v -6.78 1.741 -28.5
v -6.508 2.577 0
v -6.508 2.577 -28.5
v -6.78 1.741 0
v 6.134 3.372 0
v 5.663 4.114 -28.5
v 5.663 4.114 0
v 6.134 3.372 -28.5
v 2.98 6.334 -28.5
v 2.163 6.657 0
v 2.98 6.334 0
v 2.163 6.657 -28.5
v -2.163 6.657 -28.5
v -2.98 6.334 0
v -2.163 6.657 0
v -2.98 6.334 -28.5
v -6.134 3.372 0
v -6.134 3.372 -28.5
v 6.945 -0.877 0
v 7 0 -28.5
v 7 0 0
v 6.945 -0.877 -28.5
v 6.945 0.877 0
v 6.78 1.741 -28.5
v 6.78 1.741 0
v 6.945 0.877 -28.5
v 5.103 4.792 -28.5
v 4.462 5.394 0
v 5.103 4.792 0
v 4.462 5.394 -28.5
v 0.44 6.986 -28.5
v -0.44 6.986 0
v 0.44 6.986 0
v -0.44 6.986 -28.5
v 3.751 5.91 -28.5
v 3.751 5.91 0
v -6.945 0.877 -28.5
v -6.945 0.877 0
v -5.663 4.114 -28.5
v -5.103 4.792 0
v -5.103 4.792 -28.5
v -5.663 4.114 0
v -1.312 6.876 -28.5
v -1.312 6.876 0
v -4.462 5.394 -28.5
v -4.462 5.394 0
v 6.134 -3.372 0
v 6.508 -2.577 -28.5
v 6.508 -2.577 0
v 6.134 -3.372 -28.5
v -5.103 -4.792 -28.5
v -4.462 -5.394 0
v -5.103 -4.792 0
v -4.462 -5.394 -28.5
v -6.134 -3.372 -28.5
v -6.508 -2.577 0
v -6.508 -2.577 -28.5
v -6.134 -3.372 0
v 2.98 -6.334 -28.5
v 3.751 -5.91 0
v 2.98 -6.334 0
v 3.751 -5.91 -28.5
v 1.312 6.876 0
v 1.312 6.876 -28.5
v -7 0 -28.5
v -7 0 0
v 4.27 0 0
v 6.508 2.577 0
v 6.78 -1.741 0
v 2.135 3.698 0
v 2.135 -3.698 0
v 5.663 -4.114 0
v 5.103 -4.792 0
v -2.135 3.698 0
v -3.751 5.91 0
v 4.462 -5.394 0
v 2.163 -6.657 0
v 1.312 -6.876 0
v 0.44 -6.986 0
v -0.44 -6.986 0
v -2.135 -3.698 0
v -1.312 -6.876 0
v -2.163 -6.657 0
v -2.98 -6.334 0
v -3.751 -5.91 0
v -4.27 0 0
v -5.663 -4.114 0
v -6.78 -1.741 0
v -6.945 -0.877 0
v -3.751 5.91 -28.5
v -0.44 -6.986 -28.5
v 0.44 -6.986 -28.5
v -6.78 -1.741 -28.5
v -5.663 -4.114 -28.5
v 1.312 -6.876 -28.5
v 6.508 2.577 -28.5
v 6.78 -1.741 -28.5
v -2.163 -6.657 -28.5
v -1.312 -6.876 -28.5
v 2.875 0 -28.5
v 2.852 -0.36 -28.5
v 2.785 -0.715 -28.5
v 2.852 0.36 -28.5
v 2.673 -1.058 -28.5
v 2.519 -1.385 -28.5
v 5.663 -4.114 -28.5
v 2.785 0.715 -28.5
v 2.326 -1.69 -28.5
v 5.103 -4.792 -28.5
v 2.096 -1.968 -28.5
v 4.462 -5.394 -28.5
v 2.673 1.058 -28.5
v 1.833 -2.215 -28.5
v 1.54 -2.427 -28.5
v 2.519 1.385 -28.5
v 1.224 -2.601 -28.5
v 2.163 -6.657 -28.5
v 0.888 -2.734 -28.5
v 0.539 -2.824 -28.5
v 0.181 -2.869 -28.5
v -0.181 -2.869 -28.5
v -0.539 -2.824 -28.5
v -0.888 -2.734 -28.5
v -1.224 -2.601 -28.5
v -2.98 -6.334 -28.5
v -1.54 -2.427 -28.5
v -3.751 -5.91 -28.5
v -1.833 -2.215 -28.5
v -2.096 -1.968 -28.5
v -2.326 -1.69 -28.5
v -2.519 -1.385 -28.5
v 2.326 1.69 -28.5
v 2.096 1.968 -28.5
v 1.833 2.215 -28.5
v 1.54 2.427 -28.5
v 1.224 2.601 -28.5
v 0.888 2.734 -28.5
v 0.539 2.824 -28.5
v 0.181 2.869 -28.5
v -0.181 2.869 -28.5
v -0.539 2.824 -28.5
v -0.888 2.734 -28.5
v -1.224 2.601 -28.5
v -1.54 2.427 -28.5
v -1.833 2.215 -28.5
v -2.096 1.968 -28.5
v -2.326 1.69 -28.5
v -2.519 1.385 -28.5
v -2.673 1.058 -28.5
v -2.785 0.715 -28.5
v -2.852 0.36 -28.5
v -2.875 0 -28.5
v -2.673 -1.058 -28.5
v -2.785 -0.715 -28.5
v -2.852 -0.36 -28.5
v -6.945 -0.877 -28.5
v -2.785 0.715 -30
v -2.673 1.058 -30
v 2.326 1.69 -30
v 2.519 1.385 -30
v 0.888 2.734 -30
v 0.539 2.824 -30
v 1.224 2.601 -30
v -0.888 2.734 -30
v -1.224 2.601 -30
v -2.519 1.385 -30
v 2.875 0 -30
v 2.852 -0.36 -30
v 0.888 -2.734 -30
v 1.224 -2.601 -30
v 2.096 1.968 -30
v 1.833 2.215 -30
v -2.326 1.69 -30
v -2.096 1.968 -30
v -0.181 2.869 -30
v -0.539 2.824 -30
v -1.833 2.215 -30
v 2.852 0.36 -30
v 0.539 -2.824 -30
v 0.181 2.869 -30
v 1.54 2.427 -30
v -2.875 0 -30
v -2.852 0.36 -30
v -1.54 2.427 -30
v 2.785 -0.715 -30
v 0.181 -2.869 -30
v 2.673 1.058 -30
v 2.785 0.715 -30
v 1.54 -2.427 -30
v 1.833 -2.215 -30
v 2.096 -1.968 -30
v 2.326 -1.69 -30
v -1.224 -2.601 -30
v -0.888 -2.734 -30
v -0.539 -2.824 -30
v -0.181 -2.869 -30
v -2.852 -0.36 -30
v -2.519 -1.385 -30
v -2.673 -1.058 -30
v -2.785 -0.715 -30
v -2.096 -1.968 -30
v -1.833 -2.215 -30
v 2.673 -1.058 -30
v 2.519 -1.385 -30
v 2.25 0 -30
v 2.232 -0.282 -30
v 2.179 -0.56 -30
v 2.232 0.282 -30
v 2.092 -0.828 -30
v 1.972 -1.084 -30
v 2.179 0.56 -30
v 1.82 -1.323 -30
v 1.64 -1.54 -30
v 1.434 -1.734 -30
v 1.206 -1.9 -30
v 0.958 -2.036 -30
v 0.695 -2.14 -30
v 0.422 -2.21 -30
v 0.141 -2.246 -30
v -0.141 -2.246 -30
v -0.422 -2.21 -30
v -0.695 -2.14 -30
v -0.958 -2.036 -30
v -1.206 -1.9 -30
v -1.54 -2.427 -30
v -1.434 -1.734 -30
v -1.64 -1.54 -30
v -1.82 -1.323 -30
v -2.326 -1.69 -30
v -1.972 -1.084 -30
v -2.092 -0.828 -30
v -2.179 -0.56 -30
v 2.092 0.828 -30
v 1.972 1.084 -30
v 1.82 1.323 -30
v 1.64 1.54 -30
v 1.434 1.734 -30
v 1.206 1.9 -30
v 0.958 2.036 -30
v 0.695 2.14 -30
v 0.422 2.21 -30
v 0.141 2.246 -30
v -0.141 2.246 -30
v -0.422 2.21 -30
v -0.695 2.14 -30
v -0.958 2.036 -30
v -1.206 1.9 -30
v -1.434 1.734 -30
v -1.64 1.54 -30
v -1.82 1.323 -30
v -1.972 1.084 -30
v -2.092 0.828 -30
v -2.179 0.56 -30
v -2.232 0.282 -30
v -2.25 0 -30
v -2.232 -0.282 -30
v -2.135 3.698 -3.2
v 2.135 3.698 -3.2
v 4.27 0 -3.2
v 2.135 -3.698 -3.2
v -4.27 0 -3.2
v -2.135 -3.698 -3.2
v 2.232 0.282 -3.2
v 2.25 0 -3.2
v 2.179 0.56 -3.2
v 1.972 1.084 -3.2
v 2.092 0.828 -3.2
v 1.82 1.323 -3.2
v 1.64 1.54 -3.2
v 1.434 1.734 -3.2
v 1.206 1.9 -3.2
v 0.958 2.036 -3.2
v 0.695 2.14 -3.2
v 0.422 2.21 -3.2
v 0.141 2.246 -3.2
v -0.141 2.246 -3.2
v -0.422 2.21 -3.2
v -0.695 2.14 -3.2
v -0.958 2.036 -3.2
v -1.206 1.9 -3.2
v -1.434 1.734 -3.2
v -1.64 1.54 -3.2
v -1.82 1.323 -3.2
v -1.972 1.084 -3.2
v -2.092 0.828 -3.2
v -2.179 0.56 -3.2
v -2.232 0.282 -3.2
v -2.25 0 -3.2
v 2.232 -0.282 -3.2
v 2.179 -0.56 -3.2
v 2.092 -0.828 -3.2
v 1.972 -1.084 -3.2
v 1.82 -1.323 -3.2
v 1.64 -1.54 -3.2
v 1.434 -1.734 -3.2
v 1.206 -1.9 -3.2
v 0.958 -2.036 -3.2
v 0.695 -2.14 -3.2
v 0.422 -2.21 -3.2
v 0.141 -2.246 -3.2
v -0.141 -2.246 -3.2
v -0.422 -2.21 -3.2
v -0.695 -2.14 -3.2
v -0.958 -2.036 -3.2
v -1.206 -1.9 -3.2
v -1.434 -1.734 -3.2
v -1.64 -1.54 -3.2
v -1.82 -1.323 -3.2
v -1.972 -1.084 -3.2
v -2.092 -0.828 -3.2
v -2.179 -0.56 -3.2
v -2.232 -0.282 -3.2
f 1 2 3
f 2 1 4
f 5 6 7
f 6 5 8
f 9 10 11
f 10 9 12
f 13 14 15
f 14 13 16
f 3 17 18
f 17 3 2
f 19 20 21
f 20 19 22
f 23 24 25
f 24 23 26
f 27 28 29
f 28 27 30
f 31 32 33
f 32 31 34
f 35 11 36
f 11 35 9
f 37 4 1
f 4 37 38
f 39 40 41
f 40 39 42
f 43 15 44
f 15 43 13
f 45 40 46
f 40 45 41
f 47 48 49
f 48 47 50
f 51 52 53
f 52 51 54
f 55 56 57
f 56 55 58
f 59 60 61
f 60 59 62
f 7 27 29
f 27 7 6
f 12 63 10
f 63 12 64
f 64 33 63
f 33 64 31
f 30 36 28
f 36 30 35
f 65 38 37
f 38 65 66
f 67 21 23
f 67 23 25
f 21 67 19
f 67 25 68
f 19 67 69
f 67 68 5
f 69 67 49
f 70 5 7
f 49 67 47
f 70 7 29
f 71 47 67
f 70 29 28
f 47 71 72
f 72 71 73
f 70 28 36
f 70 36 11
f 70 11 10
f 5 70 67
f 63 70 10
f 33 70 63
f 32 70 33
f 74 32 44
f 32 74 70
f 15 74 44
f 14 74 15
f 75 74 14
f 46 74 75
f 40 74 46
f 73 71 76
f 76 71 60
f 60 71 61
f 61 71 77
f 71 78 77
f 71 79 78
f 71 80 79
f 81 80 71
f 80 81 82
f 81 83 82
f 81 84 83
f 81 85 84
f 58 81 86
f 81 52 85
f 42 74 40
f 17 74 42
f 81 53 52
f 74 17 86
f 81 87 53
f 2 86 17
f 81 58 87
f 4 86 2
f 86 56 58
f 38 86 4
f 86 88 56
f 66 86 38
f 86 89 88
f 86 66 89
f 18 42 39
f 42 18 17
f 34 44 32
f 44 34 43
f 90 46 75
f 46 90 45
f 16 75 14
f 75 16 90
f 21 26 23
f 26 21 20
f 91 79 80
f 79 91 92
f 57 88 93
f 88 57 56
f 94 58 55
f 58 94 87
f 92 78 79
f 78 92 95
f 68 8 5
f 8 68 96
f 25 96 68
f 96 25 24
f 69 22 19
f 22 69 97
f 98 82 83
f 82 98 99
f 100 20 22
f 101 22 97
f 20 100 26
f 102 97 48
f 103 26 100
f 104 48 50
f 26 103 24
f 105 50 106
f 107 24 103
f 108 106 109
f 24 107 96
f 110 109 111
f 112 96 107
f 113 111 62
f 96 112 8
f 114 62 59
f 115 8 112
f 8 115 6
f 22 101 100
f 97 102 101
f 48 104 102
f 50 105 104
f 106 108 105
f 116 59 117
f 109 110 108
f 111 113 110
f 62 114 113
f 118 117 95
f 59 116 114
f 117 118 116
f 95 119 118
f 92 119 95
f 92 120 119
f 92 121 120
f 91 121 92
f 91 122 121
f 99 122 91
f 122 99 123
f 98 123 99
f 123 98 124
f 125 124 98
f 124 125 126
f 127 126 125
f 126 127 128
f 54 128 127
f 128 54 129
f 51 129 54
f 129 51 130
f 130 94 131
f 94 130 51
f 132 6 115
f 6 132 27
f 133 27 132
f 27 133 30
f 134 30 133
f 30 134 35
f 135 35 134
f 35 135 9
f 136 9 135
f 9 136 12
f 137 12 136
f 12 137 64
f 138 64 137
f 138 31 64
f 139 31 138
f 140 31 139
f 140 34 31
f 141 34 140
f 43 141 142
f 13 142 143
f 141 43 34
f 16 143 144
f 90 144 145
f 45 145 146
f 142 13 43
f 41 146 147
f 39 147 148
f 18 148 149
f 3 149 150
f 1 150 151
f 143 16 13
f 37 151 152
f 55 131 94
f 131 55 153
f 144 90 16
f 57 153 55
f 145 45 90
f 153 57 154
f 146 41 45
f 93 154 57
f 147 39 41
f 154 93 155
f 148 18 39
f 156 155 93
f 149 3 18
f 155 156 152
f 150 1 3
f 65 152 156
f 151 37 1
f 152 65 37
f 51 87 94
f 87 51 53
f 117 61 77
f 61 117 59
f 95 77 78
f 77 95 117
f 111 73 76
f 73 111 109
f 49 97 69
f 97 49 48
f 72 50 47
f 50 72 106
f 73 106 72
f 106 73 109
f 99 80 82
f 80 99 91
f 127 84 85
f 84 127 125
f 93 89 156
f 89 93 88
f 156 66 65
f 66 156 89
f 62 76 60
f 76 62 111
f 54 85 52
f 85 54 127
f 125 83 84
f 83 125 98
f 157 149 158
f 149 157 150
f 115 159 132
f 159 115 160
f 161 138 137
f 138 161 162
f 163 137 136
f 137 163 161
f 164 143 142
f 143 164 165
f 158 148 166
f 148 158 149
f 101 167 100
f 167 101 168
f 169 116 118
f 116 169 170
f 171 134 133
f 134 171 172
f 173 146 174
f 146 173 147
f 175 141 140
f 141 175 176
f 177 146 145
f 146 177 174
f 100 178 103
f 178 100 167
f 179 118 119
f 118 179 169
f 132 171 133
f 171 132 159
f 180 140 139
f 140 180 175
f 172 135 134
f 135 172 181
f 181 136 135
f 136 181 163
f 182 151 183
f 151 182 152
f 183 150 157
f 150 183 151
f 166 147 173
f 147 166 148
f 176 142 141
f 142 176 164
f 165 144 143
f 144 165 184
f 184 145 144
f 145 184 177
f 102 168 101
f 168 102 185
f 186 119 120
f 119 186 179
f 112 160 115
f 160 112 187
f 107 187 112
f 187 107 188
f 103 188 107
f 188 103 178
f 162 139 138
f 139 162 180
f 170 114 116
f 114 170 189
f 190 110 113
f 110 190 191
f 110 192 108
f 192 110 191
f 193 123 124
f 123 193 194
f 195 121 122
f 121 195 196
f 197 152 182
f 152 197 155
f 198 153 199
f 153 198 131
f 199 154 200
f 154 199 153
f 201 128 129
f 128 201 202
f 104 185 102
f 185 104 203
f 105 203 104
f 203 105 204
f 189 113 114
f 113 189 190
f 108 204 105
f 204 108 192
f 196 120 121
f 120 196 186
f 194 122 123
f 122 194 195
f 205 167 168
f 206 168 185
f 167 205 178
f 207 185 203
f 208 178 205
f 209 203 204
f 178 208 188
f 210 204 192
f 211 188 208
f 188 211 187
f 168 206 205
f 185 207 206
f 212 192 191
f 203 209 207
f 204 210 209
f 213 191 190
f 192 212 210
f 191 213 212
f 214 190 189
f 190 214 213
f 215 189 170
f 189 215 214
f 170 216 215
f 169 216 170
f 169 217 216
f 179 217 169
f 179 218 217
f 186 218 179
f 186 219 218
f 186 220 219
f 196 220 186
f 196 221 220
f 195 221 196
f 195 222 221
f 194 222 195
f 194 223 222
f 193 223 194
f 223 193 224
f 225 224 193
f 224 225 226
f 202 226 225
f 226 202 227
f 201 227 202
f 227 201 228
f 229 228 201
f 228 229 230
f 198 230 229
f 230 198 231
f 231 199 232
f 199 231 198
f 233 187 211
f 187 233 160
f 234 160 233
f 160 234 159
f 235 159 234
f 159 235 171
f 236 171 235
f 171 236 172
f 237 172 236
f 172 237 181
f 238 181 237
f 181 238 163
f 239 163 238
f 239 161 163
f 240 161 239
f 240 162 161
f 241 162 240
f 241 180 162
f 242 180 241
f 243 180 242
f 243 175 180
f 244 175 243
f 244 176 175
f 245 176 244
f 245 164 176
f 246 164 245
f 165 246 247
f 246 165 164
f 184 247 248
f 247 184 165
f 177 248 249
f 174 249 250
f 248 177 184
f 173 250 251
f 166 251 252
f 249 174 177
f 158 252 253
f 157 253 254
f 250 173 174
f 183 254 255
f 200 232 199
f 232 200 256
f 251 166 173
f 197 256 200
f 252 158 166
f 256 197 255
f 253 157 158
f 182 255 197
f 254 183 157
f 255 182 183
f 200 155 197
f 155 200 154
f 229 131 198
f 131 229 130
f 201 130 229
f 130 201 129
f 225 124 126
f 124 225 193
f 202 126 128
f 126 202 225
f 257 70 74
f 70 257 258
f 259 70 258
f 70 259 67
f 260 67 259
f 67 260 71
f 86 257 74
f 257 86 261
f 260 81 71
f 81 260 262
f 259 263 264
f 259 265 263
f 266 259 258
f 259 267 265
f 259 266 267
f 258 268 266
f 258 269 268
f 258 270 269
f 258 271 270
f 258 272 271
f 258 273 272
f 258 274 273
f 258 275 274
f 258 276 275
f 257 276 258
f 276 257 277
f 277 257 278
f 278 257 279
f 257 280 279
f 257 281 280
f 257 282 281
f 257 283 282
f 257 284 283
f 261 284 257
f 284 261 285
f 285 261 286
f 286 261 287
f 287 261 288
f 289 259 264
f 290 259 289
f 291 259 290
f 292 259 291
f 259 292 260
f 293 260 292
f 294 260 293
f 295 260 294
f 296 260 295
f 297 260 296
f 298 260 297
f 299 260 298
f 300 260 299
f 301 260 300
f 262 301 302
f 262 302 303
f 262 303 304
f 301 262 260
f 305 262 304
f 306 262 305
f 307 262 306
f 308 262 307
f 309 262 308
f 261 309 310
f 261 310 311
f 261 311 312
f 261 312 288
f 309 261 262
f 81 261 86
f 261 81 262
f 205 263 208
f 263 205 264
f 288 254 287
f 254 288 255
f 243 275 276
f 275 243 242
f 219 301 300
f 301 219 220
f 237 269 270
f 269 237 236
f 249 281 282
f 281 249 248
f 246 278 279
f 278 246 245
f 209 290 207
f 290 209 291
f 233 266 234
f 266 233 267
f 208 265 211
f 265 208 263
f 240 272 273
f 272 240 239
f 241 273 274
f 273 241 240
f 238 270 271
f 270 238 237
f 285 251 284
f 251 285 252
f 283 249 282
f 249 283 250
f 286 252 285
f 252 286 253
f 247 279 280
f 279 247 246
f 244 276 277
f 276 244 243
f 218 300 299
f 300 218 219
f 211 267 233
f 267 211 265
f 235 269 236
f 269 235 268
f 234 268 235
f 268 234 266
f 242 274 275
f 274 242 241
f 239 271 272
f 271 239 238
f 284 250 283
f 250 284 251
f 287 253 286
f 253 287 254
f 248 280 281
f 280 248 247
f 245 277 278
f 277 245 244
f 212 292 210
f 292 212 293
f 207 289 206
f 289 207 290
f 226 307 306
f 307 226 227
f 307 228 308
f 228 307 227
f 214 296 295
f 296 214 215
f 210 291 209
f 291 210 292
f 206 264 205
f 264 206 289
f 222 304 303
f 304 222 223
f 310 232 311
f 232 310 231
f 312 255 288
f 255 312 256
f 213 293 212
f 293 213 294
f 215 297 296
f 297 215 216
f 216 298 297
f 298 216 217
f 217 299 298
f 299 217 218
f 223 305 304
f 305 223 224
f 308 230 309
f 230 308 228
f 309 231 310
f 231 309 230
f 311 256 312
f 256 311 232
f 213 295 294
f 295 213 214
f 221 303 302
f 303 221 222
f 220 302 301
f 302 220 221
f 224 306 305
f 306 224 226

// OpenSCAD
$fn = 50;


difference() {
	union() {
		translate(v = [0, 0, -28.5000000000]) {
			cylinder(h = 28.5000000000, r = 7.0000000000);
		}
		#translate(v = [0, 0, -30.0000000000]) {
			cylinder(h = 30, r = 2.8750000000);
		}
	}
	union() {
		translate(v = [0, 0, 0]) {
			rotate(a = [0, 0, 0]) {
				difference() {
					union() {
						translate(v = [0, 0, -3.2000000000]) {
							linear_extrude(height = 3.2000000000) {
								polygon(points = [[4.2698000000, 0.0000000000], [2.1349000000, 3.6977552691], [-2.1349000000, 3.6977552691], [-4.2698000000, 0.0000000000], [-2.1349000000, -3.6977552691], [2.1349000000, -3.6977552691]]);
							}
						}
					}
					union();
				}
			}
		}
		#translate(v = [0, 0, -100.0000000000]) {
			cylinder(h = 200, r = 2.2500000000);
		}
	}
}
